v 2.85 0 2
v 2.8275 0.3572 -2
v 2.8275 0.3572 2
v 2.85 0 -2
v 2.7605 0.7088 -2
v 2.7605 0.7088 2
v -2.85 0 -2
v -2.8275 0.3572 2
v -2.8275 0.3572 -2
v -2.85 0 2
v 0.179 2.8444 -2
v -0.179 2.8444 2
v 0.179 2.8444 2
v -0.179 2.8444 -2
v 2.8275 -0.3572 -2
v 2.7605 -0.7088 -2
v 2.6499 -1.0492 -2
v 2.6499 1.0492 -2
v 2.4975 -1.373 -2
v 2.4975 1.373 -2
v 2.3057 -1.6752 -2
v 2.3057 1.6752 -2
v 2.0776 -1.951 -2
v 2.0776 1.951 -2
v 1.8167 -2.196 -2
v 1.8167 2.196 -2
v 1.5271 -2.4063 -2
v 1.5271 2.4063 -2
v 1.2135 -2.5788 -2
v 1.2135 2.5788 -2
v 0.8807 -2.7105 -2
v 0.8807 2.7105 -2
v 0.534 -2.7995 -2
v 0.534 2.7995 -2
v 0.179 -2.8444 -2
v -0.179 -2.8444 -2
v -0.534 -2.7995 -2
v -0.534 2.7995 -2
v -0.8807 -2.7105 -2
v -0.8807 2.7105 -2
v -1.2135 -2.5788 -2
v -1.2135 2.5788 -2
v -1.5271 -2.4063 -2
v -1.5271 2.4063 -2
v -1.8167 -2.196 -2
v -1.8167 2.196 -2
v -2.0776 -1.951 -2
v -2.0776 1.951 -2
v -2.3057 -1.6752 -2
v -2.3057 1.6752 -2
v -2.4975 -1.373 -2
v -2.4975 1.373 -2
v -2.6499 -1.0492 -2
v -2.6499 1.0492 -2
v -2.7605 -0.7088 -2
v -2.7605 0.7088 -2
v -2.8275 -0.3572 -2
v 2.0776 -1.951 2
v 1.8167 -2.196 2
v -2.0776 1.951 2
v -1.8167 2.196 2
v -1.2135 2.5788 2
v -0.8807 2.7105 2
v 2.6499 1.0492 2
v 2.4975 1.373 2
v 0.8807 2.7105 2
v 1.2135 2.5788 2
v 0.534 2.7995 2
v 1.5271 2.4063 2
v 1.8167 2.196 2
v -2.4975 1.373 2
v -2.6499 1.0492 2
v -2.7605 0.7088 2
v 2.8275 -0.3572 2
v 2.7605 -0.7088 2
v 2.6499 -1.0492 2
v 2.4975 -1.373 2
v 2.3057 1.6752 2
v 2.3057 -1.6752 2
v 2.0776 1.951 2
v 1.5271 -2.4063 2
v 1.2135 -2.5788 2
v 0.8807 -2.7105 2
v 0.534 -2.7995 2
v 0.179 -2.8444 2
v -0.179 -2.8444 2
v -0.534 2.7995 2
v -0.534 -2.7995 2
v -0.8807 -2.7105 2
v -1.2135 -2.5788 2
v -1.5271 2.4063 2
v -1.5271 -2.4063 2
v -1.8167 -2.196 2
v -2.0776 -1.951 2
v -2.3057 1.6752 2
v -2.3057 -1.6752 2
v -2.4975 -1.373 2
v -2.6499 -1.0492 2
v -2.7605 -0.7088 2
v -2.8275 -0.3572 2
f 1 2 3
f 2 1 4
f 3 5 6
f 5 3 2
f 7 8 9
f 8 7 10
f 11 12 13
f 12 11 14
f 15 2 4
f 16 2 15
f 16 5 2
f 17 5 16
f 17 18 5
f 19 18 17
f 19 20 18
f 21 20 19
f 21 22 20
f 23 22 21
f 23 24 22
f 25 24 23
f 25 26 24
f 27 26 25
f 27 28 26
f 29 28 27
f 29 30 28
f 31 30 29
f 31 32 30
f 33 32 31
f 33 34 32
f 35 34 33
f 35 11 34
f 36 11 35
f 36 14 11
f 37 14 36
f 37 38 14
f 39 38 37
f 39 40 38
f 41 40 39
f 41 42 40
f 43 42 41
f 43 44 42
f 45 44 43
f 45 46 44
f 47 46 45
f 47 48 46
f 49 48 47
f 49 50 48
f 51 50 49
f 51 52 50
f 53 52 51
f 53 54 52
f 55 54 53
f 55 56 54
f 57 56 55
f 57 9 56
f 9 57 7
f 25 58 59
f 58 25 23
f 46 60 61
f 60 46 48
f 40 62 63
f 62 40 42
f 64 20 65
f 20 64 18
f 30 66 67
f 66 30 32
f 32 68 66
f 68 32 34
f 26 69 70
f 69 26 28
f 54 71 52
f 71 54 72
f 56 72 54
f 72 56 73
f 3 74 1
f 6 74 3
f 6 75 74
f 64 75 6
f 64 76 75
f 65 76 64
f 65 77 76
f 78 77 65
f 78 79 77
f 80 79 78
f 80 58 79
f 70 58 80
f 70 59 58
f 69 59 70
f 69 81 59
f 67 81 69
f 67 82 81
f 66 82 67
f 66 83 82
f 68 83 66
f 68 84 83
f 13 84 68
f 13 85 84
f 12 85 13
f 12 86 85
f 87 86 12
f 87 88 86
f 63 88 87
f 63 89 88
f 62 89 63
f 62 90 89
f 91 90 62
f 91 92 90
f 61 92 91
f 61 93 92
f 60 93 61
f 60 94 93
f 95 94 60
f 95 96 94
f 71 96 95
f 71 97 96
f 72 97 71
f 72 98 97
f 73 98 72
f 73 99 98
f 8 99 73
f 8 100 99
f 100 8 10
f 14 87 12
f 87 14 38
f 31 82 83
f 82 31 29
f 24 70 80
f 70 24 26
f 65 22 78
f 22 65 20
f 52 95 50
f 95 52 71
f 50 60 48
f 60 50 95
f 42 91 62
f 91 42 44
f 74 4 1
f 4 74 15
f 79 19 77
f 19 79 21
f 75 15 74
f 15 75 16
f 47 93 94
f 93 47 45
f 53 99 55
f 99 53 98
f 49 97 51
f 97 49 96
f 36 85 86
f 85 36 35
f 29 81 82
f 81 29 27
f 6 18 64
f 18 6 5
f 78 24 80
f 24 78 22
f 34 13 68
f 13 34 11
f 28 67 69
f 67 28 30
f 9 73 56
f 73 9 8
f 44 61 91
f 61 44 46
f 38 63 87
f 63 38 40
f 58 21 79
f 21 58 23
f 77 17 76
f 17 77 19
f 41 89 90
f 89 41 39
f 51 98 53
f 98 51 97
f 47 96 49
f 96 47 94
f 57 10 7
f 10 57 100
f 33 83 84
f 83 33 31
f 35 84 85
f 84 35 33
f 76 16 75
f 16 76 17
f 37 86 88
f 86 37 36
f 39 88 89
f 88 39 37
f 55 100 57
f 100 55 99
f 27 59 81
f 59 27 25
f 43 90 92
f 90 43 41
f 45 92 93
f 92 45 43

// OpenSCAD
$fn = 50;


difference() {
	union() {
		translate(v = [0, 0, -2.0000000000]) {
			cylinder(h = 4, r = 2.8500000000);
		}
	}
	union() {
		translate(v = [0, 0, -100.0000000000]) {
			cylinder(h = 200, r = 0);
		}
	}
}
